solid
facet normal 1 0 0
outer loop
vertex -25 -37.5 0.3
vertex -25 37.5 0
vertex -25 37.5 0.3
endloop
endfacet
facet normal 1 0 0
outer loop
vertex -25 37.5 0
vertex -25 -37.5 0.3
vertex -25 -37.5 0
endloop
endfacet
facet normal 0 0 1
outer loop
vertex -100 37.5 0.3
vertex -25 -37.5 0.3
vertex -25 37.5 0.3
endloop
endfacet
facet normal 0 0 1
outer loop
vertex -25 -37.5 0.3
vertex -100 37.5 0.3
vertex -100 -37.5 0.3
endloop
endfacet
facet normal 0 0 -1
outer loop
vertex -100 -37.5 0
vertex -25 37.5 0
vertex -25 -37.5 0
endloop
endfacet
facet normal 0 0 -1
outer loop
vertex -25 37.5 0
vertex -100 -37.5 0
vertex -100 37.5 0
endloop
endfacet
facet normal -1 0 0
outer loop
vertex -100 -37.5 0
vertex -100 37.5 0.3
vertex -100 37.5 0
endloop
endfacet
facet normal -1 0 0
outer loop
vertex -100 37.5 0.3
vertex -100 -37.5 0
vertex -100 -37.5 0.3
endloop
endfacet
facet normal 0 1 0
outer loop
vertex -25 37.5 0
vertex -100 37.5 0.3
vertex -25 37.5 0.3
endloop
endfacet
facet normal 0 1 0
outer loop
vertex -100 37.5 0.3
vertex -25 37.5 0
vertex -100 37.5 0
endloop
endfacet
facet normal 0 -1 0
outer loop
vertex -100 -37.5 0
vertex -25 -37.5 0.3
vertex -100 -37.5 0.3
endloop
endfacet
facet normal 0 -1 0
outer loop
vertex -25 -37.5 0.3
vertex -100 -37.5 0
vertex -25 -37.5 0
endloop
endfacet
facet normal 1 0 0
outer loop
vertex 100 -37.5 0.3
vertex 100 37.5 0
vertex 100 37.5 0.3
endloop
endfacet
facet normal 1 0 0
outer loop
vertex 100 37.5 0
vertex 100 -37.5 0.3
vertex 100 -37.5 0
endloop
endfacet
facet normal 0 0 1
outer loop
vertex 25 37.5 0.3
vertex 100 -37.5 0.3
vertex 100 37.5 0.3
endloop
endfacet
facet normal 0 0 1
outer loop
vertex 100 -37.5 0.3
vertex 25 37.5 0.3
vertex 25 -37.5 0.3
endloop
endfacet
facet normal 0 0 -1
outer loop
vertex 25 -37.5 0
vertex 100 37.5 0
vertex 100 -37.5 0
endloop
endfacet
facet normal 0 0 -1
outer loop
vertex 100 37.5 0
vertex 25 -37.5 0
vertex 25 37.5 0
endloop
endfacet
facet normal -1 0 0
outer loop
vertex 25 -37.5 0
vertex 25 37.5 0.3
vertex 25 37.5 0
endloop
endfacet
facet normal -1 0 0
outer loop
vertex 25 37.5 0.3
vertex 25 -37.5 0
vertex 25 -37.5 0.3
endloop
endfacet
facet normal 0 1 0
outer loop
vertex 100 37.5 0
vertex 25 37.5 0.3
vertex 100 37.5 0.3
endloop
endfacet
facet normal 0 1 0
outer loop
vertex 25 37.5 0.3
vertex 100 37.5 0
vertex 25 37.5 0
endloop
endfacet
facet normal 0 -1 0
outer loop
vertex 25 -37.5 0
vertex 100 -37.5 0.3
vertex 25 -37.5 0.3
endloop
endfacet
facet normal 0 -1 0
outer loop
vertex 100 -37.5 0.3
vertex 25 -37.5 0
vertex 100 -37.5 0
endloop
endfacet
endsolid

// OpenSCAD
$fn=100;

THICKNESS = 0.3; //Square / outline thickness
SIZE = 75;
GAP = 50;
translate([-(SIZE+GAP/2),-(SIZE/2),0]) cube([SIZE,SIZE,THICKNESS]);
translate([GAP/2,-(SIZE/2),0]) cube([SIZE,SIZE,THICKNESS]);
